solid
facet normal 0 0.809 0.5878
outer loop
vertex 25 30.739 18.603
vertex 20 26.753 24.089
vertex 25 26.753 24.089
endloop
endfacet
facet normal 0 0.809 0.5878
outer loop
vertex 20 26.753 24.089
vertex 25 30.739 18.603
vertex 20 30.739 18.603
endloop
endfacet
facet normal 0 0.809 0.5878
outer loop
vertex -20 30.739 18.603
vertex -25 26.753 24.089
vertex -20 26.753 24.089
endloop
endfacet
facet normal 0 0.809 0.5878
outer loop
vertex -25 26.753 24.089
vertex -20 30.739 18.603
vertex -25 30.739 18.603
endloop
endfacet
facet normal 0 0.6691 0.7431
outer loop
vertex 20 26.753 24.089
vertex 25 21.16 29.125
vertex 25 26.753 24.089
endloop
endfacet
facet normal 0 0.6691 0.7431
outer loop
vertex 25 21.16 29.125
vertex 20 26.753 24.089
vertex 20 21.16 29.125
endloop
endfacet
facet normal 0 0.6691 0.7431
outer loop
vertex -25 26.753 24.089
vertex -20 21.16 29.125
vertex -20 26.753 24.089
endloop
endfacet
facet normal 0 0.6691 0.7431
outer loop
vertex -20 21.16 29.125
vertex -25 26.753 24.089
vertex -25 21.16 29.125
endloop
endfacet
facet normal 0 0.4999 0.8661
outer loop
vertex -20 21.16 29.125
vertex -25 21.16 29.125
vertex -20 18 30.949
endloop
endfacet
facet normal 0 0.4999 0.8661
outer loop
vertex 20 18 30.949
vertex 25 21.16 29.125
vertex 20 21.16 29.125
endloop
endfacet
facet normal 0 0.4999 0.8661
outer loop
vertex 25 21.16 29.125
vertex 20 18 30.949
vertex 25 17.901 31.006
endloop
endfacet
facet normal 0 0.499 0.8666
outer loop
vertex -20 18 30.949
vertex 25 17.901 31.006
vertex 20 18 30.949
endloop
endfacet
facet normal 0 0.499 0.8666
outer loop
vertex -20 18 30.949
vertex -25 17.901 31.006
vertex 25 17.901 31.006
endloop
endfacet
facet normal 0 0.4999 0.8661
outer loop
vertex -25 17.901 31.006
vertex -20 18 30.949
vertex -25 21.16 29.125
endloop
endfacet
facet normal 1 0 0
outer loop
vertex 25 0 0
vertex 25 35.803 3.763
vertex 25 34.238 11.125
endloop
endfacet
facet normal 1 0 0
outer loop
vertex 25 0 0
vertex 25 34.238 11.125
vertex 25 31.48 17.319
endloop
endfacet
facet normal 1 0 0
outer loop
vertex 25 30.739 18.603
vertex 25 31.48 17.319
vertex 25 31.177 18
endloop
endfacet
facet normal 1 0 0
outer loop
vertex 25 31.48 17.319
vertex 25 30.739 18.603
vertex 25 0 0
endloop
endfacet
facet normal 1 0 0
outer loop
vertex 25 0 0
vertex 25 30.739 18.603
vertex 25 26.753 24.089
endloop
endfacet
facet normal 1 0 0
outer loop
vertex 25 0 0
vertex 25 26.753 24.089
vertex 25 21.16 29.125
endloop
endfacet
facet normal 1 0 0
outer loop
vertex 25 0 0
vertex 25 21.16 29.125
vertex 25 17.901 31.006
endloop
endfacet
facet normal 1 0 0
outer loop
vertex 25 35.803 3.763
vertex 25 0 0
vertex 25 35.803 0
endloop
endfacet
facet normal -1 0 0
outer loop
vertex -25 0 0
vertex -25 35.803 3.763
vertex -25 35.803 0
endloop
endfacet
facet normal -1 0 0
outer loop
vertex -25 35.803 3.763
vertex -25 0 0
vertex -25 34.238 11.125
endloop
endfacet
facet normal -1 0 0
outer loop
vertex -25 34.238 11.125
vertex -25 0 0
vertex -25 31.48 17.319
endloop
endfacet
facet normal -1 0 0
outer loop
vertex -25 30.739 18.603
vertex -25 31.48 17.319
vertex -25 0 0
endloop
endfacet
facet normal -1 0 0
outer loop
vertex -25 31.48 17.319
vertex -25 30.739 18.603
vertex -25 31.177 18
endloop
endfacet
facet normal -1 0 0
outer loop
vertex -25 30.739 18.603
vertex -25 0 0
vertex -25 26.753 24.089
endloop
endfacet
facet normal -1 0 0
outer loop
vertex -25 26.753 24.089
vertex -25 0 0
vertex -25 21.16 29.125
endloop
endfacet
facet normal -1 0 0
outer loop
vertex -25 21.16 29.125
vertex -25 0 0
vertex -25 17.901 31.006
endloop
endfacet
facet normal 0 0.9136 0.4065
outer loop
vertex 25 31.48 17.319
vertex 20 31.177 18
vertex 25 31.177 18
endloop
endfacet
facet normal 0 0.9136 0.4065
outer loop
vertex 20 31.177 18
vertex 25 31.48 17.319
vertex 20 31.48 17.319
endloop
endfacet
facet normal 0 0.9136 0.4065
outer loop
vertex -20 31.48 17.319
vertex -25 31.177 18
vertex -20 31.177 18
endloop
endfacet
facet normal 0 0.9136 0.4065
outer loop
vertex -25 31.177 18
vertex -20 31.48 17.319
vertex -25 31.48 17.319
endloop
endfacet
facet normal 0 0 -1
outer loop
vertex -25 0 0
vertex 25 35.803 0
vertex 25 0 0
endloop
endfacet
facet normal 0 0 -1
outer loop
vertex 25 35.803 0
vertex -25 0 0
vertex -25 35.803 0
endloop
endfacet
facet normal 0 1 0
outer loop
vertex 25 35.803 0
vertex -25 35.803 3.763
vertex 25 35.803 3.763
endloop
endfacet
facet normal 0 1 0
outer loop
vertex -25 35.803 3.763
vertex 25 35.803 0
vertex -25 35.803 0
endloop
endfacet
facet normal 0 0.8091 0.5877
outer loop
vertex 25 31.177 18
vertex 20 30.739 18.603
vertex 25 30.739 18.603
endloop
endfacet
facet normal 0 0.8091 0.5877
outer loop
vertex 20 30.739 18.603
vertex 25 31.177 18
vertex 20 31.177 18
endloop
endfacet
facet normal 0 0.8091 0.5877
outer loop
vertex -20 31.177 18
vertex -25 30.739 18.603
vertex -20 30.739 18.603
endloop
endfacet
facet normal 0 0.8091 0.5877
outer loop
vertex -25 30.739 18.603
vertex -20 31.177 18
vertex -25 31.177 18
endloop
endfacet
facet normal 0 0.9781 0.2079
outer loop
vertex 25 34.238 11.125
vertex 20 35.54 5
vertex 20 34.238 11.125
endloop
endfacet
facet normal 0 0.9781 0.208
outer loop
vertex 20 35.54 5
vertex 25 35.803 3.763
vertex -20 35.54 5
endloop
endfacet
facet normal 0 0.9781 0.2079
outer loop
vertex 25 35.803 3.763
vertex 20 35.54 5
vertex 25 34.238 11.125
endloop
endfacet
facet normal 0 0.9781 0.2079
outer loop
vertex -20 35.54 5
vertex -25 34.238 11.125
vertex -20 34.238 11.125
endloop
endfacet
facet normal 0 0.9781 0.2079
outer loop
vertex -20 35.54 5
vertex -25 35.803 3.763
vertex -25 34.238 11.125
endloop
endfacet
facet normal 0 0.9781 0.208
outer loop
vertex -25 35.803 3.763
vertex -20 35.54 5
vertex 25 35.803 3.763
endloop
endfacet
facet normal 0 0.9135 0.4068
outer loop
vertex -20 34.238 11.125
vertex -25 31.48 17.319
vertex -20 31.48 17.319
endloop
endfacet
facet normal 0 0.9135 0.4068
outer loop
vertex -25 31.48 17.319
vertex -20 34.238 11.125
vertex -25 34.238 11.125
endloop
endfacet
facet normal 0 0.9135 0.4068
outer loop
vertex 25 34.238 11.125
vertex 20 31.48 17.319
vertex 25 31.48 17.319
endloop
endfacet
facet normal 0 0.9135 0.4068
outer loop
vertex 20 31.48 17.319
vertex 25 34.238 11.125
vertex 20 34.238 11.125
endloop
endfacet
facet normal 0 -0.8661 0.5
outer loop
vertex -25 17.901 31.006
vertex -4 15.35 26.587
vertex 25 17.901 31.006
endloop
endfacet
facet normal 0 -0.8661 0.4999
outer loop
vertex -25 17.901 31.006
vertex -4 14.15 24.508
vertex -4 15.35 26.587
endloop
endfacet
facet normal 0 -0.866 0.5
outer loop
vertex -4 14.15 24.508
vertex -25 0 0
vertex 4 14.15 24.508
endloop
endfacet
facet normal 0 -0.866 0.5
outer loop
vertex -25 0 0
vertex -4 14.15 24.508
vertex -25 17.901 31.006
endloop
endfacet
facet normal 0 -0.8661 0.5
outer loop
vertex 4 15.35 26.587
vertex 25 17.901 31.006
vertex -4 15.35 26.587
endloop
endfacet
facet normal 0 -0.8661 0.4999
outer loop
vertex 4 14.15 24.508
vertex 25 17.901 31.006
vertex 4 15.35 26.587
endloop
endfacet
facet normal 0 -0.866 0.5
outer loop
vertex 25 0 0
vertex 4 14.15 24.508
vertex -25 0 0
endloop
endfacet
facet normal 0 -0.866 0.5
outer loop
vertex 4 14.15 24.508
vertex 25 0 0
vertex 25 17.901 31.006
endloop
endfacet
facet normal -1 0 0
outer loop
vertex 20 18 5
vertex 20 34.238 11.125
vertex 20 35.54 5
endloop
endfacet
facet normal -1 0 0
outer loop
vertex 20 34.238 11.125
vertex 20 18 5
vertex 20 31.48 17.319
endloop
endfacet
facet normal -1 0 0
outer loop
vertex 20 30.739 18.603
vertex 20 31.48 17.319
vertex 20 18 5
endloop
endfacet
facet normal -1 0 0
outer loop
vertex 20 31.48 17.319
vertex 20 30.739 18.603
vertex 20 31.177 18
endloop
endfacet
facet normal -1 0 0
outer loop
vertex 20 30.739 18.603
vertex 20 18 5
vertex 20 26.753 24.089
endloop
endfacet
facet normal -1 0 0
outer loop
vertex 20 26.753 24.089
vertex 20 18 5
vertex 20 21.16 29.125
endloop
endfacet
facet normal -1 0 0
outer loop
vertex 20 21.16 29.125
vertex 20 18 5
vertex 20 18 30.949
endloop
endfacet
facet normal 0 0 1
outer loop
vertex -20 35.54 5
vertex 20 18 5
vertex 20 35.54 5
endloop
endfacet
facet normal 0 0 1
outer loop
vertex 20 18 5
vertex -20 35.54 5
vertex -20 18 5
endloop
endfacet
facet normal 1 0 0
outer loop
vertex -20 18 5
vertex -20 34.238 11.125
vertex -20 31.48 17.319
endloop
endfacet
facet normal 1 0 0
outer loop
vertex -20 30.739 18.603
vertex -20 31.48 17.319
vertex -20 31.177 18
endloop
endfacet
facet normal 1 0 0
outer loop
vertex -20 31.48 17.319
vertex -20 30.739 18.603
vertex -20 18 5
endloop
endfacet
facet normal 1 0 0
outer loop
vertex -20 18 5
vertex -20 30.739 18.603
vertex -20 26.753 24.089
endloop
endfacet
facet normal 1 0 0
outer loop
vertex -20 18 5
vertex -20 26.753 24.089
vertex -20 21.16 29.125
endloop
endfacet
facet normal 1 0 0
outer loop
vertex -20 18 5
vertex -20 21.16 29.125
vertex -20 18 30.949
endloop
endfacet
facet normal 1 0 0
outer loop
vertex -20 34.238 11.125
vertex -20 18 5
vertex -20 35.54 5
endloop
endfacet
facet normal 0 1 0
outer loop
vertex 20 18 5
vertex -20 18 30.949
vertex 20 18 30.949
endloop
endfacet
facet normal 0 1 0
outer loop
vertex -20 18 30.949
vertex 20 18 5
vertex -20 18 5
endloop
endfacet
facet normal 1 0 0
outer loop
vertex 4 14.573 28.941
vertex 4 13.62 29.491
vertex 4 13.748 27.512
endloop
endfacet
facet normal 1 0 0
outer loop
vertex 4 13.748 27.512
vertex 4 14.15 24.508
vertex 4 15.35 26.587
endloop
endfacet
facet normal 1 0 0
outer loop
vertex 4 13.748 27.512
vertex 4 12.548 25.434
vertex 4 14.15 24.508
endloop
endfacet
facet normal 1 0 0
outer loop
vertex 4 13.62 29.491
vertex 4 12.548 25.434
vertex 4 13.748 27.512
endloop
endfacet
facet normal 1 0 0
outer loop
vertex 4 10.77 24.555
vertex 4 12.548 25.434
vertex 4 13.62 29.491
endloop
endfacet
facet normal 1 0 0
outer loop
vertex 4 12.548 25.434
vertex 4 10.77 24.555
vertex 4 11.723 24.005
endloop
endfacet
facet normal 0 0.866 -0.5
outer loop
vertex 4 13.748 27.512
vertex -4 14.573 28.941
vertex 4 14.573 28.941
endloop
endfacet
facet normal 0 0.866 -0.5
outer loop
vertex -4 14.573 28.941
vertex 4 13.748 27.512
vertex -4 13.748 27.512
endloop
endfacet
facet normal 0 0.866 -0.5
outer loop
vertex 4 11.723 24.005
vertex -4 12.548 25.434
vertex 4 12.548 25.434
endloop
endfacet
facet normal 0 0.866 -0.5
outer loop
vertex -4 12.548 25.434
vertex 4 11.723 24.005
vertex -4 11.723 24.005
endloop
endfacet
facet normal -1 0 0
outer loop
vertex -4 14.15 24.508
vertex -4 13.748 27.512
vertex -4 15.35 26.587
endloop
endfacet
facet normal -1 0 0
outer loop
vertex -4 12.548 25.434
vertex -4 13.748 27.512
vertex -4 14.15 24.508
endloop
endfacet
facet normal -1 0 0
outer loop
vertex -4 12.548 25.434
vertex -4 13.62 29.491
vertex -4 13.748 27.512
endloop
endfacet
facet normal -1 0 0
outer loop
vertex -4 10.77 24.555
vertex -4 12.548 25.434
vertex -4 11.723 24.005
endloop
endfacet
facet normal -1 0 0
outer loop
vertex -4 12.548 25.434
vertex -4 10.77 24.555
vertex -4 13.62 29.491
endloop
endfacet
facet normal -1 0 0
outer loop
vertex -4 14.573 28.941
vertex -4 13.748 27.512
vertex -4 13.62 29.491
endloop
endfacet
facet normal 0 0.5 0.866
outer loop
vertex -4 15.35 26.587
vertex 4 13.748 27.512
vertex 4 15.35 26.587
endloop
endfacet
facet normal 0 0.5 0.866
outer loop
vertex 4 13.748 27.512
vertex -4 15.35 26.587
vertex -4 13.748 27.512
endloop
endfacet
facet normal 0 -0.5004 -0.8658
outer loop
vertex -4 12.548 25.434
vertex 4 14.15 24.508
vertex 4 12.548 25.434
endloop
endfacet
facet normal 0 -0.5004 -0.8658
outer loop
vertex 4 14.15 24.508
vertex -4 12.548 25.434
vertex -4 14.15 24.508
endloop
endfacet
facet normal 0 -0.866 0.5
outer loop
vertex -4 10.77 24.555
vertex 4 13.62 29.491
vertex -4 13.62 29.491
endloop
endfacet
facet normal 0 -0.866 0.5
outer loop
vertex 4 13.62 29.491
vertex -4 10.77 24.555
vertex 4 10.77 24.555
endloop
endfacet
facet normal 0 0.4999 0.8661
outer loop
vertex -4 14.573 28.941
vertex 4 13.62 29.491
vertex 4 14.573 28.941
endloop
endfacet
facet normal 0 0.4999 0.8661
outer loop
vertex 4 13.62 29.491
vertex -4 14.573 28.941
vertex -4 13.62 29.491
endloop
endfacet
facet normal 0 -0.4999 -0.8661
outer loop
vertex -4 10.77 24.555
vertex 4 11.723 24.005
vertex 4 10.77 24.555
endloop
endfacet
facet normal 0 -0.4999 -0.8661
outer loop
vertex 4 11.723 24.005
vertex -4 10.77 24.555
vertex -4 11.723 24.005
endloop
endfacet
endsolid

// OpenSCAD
innerMountCube=[8,5.7,1.1];
//innerMountCube=[8,5.7,1.4];
lowerMountPlate=[12.6,13,0.6];
//lowerMountPlate=[12.6,13,2.3];
basePlateSize=[50,36,0];
mountHeightHolder=[8,2.4,1.85];
//mountHeightHolder=[8,2.4,1.6];
angleWindshield=60;


showAtWindscreen=0;

if(showAtWindscreen){
    rotate([-90-angleWindshield,0,0])
        translate([0,-200,0])
            DashCamMount();
Windshield();
}else {
DashCamMount();
}

module Windshield(){
rotate([90-angleWindshield,0,0])
    color("azure",0.25) 
       translate([-200,0,0])
            cube([400,400,4]);
}


module DashCamMount(){
    translate([-basePlateSize[0]/2,0,0])
        difference(){
            rotate([0,270,180])
                arcCylinder(basePlateSize[0],basePlateSize[1],angleWindshield);

            // Cutout at Back
            translate([5,basePlateSize[1]/2,5])
                cube([basePlateSize[0]-10,basePlateSize[1],30]);
        }

    // mounting Plate
    rotate([60,0,0])
        translate([0,basePlateSize[1]-lowerMountPlate[1]/2,0]){
//        cubeCenterXY(lowerMountPlate);
//        translate([0,0,lowerMountPlate[2]])
            {
            cubeCenterXY(mountHeightHolder);
            translate([0,0,mountHeightHolder[2]*1]){

                // Inner mount Cube
                cubeCenterXY(innerMountCube);
            }
            
        }
    }
}


module cubeCenterXY(dimensions){
    translate([-dimensions[0]*.5,-dimensions[1]*.5,0])
    cube(dimensions);
}


module halfCylinder(h,r) {
  intersection() {
    cylinder(h=h,r=r);
    translate([0,-r,0]) cube([r,2*r,h]);
  }
}

module arcCylinder(h,r,angle) {
  if (angle > 180) {
    union() {
      halfCylinder(h,r);
      rotate([0,0,angle-180]) halfCylinder(h,r);
    }
  } else {
    intersection() {
      halfCylinder(h,r);
      rotate([0,0,angle-180]) halfCylinder(h,r);
    }
  }
}
